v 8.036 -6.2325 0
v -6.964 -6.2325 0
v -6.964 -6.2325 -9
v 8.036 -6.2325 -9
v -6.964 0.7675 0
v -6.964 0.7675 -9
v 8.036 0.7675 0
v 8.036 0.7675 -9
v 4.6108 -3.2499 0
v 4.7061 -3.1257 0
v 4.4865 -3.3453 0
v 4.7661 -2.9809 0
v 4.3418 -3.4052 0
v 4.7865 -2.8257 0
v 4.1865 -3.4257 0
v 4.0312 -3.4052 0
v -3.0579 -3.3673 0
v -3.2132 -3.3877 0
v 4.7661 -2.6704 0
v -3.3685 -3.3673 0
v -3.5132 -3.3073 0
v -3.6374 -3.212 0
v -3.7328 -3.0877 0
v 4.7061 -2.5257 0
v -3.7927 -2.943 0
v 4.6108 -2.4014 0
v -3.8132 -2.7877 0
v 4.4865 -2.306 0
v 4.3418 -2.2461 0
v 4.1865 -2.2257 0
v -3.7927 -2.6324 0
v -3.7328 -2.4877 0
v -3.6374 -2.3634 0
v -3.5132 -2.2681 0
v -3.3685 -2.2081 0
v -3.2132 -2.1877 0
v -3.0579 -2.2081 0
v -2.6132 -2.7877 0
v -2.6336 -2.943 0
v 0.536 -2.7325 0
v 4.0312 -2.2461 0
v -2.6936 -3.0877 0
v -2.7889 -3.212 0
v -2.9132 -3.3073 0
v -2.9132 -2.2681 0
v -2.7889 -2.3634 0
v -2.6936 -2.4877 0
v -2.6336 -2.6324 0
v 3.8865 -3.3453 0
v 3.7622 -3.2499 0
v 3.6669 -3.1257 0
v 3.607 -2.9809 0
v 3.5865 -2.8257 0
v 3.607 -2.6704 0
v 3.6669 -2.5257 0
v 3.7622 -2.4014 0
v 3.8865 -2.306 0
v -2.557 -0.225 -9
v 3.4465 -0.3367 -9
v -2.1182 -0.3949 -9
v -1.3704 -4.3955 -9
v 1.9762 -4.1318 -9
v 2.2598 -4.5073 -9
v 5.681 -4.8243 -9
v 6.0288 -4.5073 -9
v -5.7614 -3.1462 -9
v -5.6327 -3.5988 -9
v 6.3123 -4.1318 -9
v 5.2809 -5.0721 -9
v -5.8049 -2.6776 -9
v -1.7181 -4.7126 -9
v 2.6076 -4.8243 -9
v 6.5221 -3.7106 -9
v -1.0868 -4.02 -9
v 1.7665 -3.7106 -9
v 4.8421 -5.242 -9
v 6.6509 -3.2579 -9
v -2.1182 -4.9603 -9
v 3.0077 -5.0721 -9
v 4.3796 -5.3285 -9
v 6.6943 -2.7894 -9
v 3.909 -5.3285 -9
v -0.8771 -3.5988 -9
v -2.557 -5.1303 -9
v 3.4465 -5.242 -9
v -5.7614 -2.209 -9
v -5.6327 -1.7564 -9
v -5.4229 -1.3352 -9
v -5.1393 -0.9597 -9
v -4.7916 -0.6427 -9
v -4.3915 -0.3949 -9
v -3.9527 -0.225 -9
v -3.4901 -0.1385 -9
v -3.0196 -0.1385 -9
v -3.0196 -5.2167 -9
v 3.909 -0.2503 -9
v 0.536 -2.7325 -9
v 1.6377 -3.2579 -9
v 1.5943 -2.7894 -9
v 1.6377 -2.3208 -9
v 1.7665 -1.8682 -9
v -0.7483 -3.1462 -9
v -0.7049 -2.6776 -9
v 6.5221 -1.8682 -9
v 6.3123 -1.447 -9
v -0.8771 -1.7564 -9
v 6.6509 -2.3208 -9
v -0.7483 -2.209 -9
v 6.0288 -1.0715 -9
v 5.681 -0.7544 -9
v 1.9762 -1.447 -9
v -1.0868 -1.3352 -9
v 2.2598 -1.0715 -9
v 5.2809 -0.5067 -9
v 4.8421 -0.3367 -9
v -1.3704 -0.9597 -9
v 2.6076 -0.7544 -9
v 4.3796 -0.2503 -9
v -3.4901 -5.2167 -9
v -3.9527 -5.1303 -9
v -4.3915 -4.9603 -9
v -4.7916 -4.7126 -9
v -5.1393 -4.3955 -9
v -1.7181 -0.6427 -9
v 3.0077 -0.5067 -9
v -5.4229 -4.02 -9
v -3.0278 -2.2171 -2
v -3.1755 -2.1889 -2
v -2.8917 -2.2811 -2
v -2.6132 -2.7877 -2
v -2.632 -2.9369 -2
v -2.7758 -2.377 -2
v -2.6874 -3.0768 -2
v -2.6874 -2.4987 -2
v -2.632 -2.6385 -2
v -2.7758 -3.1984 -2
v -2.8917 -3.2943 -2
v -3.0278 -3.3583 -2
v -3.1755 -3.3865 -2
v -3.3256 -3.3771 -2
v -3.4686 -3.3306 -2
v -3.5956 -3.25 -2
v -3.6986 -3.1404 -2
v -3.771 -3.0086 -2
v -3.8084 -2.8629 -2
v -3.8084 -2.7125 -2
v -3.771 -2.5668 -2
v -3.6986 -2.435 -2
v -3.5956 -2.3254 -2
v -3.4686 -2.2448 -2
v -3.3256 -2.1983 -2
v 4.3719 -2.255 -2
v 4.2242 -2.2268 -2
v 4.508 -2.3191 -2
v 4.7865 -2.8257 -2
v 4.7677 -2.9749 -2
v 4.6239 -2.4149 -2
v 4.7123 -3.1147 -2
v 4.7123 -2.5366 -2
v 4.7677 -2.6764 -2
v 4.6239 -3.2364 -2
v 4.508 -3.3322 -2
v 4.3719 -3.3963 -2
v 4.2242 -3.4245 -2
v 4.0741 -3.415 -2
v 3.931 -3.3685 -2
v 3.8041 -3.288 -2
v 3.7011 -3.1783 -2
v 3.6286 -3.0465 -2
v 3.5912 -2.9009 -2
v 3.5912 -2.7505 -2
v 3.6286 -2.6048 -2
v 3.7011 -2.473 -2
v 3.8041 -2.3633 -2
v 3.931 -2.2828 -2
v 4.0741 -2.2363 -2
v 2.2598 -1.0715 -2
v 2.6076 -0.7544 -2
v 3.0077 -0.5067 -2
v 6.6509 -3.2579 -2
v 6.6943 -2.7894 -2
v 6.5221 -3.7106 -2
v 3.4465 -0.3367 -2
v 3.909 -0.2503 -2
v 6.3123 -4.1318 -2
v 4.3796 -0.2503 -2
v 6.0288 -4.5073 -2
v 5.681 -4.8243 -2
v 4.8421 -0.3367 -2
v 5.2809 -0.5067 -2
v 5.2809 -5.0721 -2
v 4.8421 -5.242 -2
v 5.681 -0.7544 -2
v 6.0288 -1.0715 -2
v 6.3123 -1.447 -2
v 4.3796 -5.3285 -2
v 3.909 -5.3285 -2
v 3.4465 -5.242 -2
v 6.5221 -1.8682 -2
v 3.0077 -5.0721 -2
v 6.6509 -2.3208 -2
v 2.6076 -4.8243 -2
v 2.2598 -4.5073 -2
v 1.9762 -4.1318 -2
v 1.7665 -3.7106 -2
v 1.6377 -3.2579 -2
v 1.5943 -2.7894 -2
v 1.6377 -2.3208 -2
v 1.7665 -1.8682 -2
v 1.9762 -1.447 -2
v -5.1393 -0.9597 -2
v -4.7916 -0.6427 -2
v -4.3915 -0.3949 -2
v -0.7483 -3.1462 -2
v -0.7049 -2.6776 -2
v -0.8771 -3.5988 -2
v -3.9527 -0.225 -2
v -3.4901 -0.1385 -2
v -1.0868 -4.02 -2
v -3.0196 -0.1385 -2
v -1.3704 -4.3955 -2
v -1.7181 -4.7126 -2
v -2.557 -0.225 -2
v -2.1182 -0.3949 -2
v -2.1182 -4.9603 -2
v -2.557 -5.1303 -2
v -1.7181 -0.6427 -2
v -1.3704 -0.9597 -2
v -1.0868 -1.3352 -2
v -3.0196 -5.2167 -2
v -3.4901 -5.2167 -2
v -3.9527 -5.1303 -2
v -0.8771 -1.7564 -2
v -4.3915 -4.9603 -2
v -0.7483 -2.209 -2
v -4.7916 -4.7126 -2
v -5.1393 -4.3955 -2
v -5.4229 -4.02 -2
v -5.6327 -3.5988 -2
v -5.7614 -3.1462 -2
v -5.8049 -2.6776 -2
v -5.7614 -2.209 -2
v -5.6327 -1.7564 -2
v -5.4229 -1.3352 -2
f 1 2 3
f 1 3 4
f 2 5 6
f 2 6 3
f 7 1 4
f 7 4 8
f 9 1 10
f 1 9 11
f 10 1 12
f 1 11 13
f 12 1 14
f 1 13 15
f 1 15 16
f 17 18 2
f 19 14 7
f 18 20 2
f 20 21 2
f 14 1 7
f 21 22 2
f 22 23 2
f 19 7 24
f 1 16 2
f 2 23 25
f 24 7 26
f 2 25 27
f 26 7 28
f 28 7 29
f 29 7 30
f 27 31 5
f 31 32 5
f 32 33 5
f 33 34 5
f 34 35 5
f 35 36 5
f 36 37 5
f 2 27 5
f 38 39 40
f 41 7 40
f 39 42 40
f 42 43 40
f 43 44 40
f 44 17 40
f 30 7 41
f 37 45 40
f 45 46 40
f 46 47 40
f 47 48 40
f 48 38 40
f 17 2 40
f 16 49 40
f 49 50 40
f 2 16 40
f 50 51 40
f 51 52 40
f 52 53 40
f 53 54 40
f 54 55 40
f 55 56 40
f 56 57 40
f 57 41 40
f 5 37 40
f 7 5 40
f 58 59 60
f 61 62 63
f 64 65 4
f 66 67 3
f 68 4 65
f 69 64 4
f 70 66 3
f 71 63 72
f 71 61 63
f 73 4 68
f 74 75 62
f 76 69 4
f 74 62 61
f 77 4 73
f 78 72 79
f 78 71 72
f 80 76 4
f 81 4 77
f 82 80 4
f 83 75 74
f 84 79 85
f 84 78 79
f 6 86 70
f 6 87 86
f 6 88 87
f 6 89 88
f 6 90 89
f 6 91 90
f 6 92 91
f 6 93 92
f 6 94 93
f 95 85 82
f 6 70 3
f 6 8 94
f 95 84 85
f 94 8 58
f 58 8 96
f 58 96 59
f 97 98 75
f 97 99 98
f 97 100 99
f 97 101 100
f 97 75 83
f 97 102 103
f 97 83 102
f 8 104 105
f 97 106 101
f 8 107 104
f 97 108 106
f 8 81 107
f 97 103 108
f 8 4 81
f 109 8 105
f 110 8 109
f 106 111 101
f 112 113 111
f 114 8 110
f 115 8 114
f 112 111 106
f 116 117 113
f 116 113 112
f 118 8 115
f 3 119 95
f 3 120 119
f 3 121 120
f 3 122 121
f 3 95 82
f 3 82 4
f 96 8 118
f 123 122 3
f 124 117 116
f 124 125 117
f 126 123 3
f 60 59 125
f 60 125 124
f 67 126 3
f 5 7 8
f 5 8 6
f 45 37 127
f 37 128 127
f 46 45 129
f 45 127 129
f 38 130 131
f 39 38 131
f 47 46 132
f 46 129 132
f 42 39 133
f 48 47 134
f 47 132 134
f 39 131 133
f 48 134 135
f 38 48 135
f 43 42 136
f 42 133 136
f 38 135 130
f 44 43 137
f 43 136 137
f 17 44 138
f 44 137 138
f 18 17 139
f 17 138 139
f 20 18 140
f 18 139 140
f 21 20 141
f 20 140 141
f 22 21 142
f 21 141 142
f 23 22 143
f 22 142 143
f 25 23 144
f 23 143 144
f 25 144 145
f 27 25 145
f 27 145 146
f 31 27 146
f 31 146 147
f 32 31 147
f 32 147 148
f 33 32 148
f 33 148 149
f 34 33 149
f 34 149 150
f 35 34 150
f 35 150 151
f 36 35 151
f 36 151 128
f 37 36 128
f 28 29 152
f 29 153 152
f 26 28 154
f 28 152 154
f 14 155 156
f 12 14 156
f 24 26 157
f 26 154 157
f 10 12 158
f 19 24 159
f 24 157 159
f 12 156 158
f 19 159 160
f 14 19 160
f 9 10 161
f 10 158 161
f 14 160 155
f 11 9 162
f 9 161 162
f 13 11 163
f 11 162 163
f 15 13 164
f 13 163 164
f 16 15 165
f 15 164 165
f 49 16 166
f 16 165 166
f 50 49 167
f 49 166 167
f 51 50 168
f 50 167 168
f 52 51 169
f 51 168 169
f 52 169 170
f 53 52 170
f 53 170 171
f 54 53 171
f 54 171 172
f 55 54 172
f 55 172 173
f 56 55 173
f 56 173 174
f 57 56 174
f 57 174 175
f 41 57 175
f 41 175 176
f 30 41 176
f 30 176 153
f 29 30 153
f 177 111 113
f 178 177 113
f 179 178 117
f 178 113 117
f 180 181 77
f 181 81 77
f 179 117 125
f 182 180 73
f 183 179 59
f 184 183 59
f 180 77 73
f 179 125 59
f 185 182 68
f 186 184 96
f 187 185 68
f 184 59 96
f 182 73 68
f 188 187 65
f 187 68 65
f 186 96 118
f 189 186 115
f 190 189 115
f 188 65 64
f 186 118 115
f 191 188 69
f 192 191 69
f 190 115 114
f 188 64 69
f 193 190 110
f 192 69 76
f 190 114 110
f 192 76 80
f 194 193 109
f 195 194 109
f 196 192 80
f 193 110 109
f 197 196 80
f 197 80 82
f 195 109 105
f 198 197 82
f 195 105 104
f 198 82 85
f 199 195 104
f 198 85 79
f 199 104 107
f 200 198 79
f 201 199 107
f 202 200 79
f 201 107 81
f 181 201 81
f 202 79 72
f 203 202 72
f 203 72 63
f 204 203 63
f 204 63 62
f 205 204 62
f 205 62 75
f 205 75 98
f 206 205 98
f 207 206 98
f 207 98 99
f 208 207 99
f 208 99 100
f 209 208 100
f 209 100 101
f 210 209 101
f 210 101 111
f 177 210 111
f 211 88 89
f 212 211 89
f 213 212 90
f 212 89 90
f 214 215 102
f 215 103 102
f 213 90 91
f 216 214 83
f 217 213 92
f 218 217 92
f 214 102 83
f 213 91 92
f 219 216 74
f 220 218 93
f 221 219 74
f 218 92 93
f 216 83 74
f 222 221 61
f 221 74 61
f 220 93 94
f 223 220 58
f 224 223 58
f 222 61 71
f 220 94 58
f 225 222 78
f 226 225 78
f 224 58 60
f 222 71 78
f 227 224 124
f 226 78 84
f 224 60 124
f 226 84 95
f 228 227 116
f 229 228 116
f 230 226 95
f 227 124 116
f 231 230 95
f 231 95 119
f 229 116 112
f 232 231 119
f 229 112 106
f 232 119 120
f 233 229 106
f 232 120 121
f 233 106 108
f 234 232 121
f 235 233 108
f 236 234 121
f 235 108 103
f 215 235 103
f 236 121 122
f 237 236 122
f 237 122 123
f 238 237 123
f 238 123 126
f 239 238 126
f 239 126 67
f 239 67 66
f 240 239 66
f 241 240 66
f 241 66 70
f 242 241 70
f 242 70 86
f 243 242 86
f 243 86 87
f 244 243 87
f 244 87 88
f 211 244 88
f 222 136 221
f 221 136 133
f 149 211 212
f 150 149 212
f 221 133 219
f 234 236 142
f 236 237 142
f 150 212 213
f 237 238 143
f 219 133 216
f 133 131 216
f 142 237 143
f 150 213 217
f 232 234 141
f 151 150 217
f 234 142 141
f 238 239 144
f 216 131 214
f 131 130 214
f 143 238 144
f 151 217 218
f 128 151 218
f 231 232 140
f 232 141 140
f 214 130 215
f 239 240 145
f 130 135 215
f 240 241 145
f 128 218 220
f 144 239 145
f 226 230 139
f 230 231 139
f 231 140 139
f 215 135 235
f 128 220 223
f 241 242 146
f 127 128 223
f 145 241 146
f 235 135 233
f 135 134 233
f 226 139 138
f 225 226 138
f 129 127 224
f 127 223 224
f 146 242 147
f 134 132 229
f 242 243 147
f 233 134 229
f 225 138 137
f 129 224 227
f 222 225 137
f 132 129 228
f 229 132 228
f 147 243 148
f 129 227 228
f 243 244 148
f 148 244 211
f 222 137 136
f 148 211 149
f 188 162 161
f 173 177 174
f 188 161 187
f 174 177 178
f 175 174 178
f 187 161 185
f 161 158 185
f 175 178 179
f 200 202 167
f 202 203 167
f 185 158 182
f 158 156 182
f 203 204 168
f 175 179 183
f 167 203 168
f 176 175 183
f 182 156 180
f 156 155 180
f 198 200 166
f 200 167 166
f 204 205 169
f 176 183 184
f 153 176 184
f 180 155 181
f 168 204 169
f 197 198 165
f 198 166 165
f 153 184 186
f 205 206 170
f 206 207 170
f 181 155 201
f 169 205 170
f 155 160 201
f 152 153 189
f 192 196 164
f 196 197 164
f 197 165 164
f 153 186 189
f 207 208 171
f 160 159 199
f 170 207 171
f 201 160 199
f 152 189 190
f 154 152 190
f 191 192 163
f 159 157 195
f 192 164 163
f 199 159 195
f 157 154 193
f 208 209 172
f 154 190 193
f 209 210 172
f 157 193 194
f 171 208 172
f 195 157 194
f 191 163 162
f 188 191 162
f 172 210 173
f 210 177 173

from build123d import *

# Parameters (mm, degrees)
SKETCH001_W     = 15
SKETCH001_H     = 7
PAD_DEPTH       = 9
SKETCH_R        = 2.55
POCKET_DEPTH    = 7
SKETCH002_R     = 0.6
POCKET001_DEPTH = 5


with BuildPart() as part:
    # Sketch001 → Pad (new body)
    with BuildSketch(Plane(origin=(0, 0, 0), x_dir=(1, 0, 0), z_dir=(0, 0, -1))):
        with Locations((0.536015, 2.732478)):
            Rectangle(SKETCH001_W, SKETCH001_H)
    extrude(amount=PAD_DEPTH)

    # Sketch → Pocket (cut)
    with BuildSketch(Plane(origin=(0, 0, -9), x_dir=(1, 0, 0), z_dir=(0, 0, -1))):
        with Locations((-3.254865, 2.67761)):
            Circle(SKETCH_R)
        with Locations((4.144291, 2.789385)):
            Circle(SKETCH_R)
    extrude(amount=-POCKET_DEPTH, mode=Mode.SUBTRACT)

    # Sketch002 → Pocket001 (cut)
    with BuildSketch(Plane(origin=(0, 0, -2), x_dir=(1, 0, 0), z_dir=(0, 0, -1))):
        with Locations((-3.213175, 2.787703)):
            Circle(SKETCH002_R)
        with Locations((4.18651, 2.825651)):
            Circle(SKETCH002_R)
    extrude(amount=-POCKET001_DEPTH, mode=Mode.SUBTRACT)


solid = part.part
